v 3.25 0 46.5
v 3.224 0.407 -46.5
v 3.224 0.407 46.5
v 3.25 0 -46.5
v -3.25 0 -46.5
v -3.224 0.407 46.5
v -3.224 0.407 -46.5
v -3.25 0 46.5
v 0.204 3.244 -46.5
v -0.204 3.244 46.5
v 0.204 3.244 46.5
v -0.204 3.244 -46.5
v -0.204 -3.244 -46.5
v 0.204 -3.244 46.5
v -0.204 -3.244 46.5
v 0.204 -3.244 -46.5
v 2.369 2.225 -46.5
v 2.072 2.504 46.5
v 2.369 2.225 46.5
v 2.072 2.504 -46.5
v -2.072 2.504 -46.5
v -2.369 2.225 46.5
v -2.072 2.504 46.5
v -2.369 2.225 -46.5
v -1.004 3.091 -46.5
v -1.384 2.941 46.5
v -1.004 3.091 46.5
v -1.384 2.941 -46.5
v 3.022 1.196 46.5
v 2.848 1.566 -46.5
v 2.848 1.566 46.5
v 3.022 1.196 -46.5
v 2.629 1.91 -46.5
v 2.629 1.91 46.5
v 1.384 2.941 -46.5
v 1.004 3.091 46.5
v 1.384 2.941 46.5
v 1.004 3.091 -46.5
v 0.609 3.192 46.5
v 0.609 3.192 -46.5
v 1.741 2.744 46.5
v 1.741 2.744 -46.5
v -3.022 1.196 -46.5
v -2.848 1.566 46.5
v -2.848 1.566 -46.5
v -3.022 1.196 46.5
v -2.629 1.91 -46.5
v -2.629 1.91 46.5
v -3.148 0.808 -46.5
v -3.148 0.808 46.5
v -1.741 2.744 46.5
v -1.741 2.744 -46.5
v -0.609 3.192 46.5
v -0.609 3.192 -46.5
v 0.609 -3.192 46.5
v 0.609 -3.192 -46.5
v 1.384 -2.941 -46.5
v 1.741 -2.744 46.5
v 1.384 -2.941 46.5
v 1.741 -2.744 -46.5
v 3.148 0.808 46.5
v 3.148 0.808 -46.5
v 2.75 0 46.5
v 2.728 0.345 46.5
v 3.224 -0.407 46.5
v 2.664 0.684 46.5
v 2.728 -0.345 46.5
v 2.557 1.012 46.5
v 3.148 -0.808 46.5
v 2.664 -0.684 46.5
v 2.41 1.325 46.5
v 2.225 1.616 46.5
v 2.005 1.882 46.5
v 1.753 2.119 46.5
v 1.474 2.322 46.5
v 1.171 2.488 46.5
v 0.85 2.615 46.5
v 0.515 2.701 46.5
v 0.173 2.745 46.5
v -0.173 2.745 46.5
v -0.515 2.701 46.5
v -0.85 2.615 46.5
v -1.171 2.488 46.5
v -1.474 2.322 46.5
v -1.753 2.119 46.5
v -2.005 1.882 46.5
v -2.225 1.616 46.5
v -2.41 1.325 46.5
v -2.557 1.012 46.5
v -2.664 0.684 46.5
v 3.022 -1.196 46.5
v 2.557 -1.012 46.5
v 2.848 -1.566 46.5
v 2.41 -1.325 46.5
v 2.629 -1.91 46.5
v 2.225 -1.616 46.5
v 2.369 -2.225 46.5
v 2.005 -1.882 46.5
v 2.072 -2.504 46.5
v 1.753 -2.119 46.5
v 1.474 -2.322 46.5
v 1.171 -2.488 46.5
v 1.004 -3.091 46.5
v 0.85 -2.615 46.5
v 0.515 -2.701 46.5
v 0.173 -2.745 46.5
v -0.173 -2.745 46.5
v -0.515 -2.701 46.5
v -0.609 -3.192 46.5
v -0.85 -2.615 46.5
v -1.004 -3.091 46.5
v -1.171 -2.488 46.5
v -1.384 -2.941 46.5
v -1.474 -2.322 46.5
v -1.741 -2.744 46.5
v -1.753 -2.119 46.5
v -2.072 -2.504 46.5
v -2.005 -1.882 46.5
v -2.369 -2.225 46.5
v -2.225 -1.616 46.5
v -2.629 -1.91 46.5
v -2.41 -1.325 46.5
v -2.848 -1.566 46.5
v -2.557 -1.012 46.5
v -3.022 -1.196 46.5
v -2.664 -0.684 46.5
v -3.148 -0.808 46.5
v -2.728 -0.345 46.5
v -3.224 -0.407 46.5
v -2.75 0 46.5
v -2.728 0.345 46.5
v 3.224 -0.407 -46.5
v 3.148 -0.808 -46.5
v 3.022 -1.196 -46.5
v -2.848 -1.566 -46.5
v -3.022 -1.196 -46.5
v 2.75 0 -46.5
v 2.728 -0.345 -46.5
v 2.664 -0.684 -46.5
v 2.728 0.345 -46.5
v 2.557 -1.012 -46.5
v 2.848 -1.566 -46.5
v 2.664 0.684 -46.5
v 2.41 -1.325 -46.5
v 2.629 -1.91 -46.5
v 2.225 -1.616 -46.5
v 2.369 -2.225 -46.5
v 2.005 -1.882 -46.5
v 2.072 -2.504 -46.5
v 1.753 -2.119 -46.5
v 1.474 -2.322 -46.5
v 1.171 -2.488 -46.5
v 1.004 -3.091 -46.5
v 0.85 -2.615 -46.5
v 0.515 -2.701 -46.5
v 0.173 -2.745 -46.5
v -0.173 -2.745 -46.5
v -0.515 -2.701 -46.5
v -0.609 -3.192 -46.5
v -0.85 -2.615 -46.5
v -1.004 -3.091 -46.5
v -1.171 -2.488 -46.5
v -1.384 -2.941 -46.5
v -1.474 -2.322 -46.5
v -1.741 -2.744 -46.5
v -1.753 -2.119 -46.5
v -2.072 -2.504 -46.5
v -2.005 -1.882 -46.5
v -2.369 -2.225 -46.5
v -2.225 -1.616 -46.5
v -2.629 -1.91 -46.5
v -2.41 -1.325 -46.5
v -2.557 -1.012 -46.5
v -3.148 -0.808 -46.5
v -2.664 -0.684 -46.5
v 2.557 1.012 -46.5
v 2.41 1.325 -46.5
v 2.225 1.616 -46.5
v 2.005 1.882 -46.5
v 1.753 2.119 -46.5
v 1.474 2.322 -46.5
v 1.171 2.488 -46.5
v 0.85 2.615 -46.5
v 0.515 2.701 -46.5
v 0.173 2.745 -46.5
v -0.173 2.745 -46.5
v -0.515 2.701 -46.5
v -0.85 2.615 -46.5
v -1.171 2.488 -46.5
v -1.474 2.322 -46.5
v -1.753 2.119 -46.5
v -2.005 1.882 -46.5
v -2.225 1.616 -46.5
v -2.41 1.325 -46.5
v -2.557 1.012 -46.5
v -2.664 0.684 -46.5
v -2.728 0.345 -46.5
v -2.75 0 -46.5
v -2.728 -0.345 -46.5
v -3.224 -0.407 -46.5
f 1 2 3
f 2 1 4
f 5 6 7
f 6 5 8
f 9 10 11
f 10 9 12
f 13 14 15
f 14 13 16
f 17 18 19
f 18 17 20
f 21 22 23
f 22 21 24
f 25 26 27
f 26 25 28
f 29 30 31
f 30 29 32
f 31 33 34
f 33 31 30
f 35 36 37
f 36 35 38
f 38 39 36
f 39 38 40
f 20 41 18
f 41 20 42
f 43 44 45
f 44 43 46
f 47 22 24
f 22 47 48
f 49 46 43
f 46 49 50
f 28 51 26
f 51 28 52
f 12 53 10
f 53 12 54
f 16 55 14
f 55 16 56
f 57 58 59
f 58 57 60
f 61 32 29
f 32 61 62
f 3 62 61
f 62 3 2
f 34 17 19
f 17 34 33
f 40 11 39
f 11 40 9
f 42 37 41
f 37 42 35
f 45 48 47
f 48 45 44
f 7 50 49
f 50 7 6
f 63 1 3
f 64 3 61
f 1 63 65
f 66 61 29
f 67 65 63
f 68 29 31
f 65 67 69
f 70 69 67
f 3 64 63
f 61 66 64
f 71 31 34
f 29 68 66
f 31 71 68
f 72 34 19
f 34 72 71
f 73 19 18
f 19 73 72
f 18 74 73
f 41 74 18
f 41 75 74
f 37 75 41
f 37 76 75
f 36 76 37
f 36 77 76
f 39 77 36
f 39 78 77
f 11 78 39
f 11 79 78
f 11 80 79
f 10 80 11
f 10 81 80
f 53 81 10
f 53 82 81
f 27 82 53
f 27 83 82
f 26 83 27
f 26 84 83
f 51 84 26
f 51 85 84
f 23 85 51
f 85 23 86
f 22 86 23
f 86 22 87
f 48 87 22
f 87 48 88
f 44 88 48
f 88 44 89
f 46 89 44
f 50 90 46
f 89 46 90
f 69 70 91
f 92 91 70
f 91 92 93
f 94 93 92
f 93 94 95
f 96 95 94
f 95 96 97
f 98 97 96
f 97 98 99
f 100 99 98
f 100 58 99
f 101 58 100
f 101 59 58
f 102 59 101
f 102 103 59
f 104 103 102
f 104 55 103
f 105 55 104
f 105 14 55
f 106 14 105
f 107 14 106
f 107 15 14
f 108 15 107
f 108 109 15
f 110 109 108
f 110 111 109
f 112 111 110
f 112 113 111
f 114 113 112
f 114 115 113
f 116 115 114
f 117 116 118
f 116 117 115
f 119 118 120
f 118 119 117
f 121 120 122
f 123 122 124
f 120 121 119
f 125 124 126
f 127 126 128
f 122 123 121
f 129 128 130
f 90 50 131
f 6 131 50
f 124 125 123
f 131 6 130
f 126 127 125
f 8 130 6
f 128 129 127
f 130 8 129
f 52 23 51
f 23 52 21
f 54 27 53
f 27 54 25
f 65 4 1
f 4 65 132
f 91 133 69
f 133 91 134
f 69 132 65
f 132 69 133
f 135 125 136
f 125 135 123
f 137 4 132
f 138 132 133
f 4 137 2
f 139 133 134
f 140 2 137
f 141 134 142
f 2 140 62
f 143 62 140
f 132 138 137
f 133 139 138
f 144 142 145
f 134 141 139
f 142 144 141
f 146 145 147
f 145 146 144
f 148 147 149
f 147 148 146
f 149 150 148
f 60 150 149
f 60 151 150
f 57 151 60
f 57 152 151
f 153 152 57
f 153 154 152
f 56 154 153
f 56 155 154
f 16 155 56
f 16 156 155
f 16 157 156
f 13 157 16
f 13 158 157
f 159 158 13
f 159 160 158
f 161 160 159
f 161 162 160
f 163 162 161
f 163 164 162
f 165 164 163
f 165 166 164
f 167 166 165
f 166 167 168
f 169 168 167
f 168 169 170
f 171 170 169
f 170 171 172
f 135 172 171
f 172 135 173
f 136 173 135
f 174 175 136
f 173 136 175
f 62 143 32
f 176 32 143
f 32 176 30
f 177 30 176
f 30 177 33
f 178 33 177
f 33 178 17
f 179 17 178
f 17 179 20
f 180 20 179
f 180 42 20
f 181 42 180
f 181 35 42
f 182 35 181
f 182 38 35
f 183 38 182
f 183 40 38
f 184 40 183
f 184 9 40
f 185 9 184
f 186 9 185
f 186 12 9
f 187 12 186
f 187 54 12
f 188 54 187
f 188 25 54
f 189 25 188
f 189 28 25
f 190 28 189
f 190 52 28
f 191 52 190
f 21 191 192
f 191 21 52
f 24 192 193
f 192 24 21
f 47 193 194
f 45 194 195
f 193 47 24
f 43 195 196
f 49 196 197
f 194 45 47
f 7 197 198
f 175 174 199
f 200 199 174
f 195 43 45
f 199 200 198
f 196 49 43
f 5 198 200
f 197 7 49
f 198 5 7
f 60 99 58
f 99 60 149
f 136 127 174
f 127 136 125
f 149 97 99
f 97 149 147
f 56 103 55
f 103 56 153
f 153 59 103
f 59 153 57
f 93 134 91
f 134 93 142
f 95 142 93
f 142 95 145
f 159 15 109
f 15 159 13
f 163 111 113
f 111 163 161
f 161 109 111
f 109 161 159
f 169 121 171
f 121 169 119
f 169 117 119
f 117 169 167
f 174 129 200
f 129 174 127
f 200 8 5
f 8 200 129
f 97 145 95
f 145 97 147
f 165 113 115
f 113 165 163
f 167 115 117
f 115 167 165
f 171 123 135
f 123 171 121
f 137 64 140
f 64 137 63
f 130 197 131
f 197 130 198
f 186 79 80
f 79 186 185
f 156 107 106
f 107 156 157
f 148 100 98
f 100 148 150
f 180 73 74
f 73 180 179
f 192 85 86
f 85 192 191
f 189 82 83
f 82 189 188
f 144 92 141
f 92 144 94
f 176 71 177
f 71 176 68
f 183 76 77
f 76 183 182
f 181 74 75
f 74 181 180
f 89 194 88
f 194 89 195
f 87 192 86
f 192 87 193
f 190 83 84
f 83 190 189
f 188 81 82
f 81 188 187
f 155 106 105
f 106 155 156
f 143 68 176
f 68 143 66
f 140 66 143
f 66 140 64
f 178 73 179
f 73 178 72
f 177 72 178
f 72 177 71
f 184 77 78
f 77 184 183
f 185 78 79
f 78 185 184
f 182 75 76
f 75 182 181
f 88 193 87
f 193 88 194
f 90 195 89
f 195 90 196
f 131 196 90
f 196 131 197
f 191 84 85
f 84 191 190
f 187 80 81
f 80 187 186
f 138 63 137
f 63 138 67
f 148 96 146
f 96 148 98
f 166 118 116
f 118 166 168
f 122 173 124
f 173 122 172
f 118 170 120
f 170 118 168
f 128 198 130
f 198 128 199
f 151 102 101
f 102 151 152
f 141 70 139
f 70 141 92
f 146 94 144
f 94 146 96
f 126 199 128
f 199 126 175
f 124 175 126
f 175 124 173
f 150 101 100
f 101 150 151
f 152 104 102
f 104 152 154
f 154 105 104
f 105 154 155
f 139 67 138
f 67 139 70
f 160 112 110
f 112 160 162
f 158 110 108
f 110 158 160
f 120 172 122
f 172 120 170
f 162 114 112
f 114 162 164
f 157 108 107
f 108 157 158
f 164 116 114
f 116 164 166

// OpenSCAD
$fn = 50;


difference() {
	union() {
		translate(v = [0, 0, -46.5000000000]) {
			cylinder(h = 93, r = 3.2500000000);
		}
	}
	union() {
		translate(v = [0, 0, -100.0000000000]) {
			cylinder(h = 200, r = 2.7500000000);
		}
	}
}
